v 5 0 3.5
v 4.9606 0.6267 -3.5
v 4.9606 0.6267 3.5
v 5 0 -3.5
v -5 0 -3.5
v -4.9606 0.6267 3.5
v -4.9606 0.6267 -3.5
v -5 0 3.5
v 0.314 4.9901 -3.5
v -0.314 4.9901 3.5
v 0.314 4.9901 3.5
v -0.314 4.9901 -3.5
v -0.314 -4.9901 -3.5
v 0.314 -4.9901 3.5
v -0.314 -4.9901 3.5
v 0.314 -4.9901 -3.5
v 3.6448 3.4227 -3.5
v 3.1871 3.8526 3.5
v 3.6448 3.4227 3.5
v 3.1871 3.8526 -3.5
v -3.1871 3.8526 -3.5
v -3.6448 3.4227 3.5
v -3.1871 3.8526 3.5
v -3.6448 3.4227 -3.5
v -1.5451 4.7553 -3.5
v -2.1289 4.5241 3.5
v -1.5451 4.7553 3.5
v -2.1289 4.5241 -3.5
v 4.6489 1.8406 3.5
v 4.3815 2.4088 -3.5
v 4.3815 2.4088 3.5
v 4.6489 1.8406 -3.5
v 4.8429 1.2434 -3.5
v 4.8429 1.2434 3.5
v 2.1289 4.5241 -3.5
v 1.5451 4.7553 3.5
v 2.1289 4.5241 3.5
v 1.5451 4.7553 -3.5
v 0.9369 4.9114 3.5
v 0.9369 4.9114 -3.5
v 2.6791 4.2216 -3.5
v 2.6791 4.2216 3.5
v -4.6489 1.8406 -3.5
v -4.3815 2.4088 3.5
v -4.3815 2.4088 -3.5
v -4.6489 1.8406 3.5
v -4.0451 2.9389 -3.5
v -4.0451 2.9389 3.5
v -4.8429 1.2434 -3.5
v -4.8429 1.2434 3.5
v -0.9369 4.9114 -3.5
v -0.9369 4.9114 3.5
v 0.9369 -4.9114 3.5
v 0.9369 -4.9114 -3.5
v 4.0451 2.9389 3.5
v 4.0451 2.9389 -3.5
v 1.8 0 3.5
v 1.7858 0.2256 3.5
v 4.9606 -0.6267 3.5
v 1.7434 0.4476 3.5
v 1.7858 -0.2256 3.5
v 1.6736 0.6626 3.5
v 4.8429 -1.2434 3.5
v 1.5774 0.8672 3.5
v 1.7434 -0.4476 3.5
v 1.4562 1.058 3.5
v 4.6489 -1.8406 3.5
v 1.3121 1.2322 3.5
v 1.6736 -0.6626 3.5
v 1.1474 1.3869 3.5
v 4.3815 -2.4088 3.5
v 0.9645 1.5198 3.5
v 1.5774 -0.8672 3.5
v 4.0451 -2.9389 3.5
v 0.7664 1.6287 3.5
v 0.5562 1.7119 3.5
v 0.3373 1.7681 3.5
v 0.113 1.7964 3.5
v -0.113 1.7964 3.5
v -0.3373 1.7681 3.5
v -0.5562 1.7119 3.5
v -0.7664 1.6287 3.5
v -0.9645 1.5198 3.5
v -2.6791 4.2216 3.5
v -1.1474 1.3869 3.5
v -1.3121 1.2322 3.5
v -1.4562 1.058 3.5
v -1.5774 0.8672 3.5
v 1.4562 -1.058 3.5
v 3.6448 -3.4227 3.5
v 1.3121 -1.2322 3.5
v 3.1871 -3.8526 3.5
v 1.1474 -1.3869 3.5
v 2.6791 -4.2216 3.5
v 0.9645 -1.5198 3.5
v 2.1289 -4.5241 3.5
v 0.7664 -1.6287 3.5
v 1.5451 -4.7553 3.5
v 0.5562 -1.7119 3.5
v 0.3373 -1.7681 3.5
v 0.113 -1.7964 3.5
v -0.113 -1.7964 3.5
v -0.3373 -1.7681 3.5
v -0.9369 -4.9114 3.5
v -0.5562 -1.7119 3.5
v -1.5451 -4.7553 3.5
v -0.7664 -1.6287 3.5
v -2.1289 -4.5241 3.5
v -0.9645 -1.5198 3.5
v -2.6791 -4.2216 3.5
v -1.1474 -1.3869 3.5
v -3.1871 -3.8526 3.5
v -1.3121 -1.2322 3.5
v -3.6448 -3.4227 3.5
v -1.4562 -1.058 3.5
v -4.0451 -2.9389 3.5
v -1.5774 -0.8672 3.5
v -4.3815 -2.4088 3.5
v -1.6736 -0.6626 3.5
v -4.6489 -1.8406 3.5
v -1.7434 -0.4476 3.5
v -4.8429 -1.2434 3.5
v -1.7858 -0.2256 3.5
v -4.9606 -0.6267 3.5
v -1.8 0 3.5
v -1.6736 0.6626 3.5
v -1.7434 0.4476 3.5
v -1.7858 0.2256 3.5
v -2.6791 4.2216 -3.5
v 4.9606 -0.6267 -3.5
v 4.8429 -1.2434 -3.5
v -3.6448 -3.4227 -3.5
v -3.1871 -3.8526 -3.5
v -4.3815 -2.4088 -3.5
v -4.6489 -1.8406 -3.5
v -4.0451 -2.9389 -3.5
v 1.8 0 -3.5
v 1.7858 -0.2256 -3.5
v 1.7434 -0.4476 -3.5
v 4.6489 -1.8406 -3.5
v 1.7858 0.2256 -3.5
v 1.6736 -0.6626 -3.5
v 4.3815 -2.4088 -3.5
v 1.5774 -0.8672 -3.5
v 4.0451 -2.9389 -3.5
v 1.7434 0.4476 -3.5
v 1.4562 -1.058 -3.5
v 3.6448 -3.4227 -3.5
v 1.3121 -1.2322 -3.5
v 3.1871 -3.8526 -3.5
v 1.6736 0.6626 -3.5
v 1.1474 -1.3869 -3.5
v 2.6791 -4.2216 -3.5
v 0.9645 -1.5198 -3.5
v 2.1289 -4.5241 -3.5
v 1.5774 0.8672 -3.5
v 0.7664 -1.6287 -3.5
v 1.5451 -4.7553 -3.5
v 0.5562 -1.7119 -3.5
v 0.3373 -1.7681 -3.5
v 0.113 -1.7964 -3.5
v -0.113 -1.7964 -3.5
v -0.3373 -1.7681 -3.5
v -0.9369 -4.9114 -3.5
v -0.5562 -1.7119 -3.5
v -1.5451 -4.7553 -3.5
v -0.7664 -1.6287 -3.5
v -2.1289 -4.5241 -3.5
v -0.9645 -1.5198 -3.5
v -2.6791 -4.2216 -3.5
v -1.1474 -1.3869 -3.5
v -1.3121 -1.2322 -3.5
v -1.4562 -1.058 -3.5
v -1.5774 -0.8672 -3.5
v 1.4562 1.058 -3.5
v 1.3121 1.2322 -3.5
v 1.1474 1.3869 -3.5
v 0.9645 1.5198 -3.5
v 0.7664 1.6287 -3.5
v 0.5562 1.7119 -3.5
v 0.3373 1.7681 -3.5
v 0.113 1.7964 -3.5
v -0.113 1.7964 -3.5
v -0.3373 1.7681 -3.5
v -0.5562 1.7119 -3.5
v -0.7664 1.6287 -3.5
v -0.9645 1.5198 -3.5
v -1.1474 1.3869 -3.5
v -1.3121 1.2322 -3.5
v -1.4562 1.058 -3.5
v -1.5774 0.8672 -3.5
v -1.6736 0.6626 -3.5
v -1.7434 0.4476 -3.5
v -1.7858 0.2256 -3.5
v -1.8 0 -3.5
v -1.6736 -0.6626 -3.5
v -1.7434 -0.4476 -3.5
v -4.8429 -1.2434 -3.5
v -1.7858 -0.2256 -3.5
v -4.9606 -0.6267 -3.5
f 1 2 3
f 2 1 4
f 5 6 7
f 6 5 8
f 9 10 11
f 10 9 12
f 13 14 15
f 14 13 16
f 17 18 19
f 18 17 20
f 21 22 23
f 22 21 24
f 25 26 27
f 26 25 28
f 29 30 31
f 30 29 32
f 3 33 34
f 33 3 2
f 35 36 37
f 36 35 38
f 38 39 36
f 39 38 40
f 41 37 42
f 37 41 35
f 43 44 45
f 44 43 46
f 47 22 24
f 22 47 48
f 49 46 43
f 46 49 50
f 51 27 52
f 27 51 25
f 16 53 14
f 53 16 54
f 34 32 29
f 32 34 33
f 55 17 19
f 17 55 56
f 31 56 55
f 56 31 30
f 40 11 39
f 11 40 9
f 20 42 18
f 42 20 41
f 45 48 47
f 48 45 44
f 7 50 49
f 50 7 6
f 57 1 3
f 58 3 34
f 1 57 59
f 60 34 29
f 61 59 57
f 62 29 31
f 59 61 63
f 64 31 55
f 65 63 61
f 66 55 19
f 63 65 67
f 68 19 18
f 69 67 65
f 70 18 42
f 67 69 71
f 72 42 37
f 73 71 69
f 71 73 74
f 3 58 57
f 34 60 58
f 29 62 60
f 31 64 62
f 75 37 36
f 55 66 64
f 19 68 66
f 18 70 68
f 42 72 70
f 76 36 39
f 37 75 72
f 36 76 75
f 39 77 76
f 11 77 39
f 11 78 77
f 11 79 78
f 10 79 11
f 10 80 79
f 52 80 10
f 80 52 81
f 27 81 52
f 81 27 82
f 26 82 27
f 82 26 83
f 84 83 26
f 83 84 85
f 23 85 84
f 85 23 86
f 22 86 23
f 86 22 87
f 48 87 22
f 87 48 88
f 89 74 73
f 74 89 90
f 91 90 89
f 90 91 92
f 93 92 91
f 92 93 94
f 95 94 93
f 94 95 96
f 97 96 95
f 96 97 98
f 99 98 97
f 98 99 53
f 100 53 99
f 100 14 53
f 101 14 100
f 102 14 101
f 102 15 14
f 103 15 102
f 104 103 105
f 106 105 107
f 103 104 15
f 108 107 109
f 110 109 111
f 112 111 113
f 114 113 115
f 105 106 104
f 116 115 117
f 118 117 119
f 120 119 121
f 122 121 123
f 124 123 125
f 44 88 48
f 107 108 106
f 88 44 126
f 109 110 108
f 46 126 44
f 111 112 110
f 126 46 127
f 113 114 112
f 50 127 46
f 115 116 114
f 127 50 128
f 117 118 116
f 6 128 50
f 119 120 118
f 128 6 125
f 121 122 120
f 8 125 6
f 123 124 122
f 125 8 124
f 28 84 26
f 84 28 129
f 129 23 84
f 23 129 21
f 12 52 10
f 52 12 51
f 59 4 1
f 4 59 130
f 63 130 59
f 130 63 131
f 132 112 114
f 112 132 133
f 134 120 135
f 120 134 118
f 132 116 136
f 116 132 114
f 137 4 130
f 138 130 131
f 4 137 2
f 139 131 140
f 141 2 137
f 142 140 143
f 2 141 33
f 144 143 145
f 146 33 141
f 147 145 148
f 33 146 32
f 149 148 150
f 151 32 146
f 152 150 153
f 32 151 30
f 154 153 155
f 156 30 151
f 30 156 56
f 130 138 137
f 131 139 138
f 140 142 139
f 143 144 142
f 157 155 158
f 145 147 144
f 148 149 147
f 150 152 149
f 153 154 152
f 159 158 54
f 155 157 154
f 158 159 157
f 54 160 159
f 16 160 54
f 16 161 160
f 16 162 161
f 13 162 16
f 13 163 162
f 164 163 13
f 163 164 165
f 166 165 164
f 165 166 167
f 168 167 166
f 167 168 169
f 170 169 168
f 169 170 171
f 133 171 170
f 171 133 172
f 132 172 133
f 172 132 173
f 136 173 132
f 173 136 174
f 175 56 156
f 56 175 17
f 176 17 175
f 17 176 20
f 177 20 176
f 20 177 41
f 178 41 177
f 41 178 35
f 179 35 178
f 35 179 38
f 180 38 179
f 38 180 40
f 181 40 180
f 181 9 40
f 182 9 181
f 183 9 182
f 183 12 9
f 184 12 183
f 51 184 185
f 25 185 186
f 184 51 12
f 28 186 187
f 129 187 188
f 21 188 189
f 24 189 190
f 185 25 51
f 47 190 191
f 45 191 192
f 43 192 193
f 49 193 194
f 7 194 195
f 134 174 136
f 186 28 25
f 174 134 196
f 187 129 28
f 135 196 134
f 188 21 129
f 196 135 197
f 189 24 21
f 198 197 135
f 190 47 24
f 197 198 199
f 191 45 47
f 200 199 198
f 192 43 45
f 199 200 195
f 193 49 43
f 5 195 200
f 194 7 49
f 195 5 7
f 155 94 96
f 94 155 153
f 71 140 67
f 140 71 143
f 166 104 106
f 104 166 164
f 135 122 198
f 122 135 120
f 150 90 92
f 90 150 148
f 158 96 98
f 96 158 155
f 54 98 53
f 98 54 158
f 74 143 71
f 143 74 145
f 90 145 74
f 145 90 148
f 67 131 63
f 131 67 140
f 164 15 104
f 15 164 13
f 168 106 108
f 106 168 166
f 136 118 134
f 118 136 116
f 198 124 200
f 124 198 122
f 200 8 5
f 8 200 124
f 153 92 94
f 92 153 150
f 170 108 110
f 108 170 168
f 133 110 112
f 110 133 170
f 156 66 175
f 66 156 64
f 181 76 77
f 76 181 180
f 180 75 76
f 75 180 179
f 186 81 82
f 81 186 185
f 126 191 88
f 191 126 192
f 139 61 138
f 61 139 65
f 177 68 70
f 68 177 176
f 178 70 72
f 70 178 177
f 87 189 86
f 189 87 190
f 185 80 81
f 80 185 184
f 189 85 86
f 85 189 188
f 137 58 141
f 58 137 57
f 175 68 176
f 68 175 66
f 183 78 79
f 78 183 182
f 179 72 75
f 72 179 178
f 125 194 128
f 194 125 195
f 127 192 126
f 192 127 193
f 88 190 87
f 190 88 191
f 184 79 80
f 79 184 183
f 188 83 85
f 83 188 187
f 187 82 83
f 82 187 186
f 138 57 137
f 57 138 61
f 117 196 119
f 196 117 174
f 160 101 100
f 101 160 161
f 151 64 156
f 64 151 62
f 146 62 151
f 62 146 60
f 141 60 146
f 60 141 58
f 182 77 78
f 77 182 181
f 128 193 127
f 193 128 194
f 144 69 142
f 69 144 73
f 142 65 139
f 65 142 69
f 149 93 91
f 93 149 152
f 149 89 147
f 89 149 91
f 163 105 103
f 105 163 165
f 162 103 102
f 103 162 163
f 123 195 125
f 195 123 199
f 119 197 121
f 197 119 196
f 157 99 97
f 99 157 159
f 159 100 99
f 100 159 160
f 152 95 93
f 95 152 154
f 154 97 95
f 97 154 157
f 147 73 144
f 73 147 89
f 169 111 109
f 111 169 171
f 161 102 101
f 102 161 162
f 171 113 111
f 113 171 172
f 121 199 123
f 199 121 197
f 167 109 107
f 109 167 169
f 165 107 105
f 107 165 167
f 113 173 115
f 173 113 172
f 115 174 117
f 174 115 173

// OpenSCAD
$fn = 50;


difference() {
	union() {
		translate(v = [0, 0, -3.5000000000]) {
			cylinder(h = 7, r = 5.0000000000);
		}
	}
	union() {
		translate(v = [0, 0, -100.0000000000]) {
			cylinder(h = 200, r = 1.8000000000);
		}
	}
}
